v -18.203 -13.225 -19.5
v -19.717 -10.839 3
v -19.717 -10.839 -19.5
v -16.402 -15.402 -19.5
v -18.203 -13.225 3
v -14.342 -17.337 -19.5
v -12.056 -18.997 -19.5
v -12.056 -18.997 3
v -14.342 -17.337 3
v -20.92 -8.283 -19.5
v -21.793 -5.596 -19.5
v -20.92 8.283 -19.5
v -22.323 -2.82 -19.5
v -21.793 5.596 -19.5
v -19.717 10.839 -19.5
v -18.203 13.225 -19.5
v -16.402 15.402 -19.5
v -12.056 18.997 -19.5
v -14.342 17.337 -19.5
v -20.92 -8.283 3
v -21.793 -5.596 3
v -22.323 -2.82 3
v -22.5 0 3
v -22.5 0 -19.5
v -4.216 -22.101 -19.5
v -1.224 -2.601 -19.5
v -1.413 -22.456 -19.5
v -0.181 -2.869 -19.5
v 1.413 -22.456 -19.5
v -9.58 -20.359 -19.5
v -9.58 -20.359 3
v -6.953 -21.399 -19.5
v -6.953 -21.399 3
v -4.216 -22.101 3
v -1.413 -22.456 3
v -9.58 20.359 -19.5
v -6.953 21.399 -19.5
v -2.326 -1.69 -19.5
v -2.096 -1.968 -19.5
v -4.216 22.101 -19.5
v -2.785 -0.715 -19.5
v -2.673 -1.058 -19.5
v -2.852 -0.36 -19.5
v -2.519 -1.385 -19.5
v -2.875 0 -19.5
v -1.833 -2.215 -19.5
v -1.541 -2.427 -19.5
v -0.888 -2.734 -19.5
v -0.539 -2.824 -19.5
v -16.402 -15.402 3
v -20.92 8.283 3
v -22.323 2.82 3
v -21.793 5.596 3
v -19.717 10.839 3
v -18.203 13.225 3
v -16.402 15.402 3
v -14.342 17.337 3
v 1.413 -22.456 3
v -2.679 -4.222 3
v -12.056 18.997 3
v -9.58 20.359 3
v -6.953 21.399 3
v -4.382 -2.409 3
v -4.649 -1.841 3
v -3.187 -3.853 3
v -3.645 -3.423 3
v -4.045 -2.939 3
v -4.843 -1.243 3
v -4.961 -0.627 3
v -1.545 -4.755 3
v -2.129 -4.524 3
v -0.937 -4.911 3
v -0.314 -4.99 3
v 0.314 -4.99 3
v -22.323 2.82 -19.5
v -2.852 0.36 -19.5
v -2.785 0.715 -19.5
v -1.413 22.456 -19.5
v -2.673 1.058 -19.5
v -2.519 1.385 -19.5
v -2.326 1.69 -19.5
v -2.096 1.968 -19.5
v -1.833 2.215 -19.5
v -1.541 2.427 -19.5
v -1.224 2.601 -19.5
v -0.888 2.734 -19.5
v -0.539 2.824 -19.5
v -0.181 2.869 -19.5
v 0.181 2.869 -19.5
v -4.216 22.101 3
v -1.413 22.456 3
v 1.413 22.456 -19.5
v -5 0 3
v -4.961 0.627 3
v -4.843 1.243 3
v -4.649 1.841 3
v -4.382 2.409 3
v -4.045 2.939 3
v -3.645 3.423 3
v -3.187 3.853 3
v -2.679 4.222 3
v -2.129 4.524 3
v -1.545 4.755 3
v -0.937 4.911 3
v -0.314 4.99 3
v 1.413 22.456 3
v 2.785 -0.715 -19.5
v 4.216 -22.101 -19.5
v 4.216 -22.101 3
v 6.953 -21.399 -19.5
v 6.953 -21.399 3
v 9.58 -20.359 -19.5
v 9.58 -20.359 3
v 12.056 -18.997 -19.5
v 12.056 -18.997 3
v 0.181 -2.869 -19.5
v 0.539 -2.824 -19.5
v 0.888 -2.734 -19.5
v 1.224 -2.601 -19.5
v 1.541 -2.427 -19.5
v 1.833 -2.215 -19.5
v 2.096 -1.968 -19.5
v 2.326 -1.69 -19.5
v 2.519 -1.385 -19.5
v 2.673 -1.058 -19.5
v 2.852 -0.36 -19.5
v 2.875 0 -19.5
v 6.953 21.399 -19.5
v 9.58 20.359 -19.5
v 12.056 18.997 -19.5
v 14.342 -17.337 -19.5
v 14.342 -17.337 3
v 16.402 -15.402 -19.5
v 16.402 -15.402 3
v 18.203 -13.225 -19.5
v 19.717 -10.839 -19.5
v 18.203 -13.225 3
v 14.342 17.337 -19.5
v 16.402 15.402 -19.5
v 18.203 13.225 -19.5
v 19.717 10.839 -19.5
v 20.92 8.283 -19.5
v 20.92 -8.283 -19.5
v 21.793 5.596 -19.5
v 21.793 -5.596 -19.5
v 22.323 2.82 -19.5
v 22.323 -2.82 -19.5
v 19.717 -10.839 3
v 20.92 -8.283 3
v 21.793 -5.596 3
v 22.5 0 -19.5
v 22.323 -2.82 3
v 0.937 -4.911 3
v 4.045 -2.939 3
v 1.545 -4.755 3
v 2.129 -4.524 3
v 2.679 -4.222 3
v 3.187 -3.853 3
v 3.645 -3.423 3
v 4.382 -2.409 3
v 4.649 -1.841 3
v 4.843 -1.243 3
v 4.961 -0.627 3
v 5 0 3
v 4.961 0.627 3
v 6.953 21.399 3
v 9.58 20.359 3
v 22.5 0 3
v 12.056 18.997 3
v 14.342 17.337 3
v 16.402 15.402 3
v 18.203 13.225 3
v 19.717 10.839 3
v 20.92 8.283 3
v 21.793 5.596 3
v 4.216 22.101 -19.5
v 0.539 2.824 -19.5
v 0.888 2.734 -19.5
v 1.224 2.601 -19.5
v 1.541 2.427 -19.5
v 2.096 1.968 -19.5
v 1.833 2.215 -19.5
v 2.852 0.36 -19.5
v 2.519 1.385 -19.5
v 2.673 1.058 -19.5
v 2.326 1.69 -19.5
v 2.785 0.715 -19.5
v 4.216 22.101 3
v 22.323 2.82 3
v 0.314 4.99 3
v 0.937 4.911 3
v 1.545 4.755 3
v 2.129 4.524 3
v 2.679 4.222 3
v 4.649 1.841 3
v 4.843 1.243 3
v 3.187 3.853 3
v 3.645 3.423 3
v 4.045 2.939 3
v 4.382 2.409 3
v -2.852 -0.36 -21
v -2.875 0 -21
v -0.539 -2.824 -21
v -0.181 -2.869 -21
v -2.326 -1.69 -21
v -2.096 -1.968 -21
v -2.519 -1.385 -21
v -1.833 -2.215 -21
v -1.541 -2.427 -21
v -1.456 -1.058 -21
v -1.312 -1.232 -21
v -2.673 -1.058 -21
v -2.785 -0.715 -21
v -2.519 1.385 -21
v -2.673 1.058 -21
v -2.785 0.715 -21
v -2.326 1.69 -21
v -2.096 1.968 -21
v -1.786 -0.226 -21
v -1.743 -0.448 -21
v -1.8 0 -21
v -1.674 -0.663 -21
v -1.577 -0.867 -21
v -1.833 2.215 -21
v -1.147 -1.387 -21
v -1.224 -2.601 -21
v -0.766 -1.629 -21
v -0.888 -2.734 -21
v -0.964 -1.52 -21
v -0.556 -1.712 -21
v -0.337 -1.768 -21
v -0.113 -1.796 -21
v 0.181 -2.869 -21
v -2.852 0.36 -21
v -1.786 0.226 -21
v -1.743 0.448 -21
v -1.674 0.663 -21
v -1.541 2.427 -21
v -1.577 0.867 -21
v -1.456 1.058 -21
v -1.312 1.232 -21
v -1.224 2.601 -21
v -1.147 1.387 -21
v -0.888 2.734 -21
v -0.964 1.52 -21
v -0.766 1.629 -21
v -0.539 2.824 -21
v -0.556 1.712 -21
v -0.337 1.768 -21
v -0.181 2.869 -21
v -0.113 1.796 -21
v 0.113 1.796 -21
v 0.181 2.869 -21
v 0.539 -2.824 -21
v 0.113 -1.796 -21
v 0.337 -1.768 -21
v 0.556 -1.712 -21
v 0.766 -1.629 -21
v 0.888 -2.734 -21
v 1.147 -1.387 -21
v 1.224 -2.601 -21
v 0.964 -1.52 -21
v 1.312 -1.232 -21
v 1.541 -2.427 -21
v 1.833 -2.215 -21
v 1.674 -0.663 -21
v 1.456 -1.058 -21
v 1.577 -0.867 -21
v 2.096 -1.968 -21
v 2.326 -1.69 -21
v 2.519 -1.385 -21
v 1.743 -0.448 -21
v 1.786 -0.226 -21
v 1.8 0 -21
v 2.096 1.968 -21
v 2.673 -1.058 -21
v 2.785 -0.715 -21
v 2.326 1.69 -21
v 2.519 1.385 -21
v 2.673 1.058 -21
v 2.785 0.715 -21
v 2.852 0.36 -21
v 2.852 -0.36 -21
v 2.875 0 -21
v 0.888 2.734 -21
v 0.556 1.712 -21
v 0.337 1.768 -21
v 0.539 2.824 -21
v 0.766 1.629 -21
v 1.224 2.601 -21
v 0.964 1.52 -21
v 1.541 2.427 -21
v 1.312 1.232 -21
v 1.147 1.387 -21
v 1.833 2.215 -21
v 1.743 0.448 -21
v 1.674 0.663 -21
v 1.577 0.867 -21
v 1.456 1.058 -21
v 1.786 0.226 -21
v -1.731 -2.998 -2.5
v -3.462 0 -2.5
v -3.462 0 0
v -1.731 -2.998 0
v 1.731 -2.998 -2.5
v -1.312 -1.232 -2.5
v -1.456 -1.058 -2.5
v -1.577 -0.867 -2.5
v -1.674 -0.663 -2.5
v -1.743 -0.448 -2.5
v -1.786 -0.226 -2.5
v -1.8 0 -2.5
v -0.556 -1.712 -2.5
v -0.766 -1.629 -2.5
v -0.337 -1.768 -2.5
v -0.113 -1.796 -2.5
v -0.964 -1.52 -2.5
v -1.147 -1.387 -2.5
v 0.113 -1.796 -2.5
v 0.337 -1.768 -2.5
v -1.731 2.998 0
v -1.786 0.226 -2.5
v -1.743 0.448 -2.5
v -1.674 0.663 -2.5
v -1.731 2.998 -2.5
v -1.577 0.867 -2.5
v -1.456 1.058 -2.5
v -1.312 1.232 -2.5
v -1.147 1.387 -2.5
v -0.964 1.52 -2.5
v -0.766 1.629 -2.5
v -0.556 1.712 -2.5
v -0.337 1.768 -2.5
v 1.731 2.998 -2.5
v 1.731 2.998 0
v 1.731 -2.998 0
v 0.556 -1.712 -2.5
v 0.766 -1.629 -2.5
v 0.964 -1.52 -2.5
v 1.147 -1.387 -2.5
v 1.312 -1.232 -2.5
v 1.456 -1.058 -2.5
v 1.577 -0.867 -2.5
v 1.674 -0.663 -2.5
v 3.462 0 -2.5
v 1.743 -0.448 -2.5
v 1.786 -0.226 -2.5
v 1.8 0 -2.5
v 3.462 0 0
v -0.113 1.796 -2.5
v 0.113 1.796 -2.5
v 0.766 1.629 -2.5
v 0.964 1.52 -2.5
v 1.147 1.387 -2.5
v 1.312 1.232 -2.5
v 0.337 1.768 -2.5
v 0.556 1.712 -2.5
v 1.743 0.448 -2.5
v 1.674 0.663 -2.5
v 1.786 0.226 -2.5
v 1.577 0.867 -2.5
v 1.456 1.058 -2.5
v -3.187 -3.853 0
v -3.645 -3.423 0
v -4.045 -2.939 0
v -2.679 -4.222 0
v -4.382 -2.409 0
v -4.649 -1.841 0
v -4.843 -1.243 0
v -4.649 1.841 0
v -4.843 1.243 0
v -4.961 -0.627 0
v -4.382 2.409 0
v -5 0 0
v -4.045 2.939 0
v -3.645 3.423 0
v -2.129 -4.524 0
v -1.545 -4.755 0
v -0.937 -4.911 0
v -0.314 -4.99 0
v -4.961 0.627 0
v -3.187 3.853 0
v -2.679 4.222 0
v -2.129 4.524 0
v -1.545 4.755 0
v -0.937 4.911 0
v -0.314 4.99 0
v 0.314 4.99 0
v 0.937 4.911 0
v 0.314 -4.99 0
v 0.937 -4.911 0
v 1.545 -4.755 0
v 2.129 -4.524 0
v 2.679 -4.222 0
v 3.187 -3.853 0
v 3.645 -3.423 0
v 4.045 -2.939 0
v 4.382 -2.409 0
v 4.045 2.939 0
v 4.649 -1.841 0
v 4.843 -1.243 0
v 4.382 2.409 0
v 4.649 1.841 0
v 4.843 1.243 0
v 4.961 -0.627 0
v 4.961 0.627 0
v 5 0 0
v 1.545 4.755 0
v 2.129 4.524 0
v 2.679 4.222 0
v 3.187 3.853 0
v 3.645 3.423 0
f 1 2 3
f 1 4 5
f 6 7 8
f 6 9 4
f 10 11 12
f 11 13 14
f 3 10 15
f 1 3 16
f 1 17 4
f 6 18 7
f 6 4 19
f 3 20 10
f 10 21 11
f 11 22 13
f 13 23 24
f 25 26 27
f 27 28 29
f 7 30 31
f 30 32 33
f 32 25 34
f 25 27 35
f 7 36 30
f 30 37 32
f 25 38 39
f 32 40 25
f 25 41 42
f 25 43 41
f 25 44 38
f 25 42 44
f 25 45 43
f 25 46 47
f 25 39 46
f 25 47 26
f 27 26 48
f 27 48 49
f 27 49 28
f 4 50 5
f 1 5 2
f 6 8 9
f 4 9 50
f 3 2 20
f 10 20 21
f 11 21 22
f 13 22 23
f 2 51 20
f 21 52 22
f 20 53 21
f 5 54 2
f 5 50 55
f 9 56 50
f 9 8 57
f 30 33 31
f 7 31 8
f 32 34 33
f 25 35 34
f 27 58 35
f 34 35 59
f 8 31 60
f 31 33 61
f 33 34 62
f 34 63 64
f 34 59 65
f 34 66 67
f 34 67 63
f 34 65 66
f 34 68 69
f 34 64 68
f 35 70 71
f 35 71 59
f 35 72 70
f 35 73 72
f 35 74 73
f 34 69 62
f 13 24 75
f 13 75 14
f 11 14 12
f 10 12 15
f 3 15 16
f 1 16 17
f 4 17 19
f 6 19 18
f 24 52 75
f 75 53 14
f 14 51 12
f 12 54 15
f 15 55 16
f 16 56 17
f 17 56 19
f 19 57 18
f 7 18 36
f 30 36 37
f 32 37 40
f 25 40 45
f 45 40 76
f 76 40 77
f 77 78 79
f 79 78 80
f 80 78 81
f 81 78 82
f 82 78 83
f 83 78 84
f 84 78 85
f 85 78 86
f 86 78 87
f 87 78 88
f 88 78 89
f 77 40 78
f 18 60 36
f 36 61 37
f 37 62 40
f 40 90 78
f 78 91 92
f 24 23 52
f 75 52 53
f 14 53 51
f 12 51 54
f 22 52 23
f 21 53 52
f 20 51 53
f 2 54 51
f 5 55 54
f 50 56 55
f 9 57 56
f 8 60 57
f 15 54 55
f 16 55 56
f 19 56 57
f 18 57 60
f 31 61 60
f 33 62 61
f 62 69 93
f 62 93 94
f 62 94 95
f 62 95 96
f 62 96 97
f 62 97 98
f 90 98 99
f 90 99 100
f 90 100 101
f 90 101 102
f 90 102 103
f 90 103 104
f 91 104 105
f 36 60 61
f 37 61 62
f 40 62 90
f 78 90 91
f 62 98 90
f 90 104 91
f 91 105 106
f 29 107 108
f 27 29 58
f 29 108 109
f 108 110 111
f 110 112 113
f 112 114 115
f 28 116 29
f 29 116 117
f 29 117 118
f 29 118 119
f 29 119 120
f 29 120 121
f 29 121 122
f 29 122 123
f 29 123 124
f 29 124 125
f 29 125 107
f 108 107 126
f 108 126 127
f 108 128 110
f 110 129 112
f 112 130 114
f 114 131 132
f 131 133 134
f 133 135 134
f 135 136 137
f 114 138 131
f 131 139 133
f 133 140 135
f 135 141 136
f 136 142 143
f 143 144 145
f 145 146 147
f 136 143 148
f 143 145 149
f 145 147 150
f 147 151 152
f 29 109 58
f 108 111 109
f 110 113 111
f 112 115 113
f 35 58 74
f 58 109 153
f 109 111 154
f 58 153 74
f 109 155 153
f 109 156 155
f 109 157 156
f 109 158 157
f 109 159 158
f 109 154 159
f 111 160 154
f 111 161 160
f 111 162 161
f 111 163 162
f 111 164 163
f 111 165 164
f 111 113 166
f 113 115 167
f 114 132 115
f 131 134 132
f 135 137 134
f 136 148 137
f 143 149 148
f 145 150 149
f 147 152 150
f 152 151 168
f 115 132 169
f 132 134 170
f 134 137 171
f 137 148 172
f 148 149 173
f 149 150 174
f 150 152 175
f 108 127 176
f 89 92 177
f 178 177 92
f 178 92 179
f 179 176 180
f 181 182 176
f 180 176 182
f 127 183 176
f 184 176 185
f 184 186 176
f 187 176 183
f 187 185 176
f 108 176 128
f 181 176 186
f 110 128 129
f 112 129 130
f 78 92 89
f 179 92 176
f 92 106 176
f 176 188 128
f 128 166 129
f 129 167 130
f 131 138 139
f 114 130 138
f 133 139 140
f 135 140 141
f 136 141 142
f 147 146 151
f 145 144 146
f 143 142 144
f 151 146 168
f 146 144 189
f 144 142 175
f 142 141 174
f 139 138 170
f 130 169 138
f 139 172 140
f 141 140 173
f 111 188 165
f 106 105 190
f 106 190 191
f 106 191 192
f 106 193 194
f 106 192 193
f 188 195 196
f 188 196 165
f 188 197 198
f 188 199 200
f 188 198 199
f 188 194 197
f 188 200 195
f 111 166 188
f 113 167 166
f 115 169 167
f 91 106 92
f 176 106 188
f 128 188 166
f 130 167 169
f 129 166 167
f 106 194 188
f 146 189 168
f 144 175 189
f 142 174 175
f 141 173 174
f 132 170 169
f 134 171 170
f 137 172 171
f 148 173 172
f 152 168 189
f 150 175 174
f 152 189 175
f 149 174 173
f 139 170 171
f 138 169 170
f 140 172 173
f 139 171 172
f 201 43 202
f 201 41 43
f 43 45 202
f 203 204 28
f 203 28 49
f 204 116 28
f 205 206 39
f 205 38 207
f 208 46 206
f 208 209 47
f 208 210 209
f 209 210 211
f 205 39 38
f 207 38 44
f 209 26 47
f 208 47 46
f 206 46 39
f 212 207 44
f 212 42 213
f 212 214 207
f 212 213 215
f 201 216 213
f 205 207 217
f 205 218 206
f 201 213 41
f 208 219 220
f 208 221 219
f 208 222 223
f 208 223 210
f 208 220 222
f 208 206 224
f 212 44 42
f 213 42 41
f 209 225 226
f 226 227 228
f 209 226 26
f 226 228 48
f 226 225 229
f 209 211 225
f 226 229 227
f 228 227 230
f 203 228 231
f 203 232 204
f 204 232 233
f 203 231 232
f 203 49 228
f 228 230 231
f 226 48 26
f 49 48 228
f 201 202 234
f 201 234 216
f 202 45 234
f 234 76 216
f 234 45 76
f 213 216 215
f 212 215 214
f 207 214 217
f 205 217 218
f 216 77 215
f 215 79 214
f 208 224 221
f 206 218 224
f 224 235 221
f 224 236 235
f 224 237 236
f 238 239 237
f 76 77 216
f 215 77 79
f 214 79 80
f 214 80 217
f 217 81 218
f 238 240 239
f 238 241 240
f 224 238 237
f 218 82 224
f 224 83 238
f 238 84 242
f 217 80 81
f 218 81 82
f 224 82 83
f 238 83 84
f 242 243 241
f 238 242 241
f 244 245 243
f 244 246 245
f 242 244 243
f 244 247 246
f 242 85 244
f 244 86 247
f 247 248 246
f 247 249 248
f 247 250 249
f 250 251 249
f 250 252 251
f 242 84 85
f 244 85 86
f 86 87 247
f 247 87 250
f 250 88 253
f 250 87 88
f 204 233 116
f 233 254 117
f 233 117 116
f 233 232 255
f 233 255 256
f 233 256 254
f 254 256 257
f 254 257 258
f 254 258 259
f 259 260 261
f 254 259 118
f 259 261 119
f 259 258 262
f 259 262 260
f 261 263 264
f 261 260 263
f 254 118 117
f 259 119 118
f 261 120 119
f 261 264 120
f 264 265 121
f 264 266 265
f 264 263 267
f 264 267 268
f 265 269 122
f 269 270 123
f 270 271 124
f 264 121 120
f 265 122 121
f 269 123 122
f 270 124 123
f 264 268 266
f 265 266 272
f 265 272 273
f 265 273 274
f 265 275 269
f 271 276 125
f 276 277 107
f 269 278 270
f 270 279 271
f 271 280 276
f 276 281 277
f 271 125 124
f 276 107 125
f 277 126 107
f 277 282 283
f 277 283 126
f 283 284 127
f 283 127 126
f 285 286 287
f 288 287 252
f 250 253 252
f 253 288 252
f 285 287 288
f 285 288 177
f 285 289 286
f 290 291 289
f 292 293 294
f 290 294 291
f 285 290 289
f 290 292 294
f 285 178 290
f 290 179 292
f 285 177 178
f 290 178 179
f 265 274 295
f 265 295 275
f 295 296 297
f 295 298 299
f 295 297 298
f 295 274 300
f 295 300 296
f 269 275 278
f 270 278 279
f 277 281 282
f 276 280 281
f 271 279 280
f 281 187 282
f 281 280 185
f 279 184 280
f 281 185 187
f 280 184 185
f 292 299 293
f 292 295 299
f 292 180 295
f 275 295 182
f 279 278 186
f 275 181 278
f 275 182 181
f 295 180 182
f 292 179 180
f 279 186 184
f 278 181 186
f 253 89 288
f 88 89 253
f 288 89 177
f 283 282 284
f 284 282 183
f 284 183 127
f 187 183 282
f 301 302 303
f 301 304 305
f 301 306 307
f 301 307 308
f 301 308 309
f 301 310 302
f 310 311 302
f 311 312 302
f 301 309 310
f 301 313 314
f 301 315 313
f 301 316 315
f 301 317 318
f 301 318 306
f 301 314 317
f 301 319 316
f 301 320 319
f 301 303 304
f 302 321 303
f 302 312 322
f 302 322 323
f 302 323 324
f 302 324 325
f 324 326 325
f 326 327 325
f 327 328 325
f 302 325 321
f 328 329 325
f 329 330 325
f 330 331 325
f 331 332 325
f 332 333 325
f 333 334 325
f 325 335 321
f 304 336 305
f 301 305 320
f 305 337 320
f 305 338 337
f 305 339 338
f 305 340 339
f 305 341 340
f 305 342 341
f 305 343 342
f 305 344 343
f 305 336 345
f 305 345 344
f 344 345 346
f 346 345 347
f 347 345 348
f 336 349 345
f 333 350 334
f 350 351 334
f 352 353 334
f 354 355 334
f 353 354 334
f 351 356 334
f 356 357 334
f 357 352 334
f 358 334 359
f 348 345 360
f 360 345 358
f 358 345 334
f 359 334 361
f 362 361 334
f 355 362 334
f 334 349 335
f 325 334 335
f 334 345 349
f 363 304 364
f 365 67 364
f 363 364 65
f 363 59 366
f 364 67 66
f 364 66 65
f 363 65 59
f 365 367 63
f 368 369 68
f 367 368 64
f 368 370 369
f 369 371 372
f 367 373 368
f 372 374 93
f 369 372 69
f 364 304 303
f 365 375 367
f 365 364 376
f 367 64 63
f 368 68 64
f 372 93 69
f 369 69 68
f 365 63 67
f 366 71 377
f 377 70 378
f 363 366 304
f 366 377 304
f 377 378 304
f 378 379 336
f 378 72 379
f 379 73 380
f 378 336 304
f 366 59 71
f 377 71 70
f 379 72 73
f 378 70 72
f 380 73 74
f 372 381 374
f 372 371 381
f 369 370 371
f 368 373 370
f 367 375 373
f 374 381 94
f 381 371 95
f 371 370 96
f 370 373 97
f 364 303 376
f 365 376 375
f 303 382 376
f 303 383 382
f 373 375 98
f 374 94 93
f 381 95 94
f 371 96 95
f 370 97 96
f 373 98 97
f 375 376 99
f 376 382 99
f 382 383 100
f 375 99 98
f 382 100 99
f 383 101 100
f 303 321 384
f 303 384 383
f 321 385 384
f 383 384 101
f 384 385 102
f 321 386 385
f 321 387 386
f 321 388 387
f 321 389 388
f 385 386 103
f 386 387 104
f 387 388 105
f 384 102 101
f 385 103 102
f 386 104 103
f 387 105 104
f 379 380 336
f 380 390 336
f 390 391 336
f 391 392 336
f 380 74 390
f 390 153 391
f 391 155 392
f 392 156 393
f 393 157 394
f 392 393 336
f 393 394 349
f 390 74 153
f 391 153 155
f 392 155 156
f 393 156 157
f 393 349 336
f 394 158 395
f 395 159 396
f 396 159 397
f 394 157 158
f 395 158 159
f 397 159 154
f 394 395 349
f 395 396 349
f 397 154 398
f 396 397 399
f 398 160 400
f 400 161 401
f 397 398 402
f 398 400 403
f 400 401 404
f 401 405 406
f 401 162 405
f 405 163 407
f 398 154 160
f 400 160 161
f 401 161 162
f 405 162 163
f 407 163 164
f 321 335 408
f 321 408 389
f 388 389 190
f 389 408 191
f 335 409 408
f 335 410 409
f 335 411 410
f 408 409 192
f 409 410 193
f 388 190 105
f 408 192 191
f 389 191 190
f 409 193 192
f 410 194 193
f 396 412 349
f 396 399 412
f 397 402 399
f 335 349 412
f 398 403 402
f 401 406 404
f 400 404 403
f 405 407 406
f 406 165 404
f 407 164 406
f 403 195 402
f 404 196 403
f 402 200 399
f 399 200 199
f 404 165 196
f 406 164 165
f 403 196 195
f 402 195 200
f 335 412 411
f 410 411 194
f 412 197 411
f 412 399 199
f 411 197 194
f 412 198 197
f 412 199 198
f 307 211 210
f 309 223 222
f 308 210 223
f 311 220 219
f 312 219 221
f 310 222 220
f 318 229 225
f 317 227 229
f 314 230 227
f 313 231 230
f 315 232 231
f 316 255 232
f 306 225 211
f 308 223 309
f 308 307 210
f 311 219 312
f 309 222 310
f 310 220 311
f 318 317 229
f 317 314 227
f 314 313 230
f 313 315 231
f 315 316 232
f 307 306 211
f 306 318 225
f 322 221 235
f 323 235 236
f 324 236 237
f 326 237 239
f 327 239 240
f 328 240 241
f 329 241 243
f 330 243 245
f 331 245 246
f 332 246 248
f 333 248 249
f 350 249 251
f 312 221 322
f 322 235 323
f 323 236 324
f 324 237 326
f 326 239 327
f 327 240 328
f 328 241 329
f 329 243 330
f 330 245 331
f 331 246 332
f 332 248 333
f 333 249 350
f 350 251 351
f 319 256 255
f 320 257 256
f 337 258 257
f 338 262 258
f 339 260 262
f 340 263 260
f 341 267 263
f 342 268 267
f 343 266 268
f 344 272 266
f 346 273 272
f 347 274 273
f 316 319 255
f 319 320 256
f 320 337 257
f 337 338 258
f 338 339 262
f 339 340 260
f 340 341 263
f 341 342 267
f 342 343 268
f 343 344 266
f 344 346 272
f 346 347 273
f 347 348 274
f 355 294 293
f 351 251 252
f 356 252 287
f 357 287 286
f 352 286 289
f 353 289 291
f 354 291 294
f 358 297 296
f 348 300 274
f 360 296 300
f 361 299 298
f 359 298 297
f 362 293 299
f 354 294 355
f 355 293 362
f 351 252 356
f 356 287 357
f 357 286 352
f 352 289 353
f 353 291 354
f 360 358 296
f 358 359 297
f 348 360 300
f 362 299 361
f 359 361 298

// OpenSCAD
$fn = 50;

difference() {
	union() {
		translate(v = [0, 0, -19.5]) {
			cylinder(h = 22.5, r = 22.5);
		}
		#translate(v = [0, 0, -21.0]) {
			cylinder(h = 21, r = 2.875);
		}
	}
	union() {
		translate(v = [0, 0, 0]) {
			rotate(a = [0, 0, 0]) {
				difference() {
					union() {
						translate(v = [0, 0, -2.5]) {
							linear_extrude(height = 2.5) {
								polygon(points = [[3.4619999999999997, 0.0], [1.7310000000000003, 2.9981799479017264], [-1.7309999999999992, 2.9981799479017264], [-3.4619999999999997, 4.2397272186481365e-16], [-1.7310000000000014, -2.998179947901726], [1.7309999999999977, -2.9981799479017277]]);
							}
						}
					}
					union();
				}
			}
		}
		#cylinder(h = 3, r = 5.0);
		#translate(v = [0, 0, -100.0]) {
			cylinder(h = 200, r = 1.8);
		}
	}
}
